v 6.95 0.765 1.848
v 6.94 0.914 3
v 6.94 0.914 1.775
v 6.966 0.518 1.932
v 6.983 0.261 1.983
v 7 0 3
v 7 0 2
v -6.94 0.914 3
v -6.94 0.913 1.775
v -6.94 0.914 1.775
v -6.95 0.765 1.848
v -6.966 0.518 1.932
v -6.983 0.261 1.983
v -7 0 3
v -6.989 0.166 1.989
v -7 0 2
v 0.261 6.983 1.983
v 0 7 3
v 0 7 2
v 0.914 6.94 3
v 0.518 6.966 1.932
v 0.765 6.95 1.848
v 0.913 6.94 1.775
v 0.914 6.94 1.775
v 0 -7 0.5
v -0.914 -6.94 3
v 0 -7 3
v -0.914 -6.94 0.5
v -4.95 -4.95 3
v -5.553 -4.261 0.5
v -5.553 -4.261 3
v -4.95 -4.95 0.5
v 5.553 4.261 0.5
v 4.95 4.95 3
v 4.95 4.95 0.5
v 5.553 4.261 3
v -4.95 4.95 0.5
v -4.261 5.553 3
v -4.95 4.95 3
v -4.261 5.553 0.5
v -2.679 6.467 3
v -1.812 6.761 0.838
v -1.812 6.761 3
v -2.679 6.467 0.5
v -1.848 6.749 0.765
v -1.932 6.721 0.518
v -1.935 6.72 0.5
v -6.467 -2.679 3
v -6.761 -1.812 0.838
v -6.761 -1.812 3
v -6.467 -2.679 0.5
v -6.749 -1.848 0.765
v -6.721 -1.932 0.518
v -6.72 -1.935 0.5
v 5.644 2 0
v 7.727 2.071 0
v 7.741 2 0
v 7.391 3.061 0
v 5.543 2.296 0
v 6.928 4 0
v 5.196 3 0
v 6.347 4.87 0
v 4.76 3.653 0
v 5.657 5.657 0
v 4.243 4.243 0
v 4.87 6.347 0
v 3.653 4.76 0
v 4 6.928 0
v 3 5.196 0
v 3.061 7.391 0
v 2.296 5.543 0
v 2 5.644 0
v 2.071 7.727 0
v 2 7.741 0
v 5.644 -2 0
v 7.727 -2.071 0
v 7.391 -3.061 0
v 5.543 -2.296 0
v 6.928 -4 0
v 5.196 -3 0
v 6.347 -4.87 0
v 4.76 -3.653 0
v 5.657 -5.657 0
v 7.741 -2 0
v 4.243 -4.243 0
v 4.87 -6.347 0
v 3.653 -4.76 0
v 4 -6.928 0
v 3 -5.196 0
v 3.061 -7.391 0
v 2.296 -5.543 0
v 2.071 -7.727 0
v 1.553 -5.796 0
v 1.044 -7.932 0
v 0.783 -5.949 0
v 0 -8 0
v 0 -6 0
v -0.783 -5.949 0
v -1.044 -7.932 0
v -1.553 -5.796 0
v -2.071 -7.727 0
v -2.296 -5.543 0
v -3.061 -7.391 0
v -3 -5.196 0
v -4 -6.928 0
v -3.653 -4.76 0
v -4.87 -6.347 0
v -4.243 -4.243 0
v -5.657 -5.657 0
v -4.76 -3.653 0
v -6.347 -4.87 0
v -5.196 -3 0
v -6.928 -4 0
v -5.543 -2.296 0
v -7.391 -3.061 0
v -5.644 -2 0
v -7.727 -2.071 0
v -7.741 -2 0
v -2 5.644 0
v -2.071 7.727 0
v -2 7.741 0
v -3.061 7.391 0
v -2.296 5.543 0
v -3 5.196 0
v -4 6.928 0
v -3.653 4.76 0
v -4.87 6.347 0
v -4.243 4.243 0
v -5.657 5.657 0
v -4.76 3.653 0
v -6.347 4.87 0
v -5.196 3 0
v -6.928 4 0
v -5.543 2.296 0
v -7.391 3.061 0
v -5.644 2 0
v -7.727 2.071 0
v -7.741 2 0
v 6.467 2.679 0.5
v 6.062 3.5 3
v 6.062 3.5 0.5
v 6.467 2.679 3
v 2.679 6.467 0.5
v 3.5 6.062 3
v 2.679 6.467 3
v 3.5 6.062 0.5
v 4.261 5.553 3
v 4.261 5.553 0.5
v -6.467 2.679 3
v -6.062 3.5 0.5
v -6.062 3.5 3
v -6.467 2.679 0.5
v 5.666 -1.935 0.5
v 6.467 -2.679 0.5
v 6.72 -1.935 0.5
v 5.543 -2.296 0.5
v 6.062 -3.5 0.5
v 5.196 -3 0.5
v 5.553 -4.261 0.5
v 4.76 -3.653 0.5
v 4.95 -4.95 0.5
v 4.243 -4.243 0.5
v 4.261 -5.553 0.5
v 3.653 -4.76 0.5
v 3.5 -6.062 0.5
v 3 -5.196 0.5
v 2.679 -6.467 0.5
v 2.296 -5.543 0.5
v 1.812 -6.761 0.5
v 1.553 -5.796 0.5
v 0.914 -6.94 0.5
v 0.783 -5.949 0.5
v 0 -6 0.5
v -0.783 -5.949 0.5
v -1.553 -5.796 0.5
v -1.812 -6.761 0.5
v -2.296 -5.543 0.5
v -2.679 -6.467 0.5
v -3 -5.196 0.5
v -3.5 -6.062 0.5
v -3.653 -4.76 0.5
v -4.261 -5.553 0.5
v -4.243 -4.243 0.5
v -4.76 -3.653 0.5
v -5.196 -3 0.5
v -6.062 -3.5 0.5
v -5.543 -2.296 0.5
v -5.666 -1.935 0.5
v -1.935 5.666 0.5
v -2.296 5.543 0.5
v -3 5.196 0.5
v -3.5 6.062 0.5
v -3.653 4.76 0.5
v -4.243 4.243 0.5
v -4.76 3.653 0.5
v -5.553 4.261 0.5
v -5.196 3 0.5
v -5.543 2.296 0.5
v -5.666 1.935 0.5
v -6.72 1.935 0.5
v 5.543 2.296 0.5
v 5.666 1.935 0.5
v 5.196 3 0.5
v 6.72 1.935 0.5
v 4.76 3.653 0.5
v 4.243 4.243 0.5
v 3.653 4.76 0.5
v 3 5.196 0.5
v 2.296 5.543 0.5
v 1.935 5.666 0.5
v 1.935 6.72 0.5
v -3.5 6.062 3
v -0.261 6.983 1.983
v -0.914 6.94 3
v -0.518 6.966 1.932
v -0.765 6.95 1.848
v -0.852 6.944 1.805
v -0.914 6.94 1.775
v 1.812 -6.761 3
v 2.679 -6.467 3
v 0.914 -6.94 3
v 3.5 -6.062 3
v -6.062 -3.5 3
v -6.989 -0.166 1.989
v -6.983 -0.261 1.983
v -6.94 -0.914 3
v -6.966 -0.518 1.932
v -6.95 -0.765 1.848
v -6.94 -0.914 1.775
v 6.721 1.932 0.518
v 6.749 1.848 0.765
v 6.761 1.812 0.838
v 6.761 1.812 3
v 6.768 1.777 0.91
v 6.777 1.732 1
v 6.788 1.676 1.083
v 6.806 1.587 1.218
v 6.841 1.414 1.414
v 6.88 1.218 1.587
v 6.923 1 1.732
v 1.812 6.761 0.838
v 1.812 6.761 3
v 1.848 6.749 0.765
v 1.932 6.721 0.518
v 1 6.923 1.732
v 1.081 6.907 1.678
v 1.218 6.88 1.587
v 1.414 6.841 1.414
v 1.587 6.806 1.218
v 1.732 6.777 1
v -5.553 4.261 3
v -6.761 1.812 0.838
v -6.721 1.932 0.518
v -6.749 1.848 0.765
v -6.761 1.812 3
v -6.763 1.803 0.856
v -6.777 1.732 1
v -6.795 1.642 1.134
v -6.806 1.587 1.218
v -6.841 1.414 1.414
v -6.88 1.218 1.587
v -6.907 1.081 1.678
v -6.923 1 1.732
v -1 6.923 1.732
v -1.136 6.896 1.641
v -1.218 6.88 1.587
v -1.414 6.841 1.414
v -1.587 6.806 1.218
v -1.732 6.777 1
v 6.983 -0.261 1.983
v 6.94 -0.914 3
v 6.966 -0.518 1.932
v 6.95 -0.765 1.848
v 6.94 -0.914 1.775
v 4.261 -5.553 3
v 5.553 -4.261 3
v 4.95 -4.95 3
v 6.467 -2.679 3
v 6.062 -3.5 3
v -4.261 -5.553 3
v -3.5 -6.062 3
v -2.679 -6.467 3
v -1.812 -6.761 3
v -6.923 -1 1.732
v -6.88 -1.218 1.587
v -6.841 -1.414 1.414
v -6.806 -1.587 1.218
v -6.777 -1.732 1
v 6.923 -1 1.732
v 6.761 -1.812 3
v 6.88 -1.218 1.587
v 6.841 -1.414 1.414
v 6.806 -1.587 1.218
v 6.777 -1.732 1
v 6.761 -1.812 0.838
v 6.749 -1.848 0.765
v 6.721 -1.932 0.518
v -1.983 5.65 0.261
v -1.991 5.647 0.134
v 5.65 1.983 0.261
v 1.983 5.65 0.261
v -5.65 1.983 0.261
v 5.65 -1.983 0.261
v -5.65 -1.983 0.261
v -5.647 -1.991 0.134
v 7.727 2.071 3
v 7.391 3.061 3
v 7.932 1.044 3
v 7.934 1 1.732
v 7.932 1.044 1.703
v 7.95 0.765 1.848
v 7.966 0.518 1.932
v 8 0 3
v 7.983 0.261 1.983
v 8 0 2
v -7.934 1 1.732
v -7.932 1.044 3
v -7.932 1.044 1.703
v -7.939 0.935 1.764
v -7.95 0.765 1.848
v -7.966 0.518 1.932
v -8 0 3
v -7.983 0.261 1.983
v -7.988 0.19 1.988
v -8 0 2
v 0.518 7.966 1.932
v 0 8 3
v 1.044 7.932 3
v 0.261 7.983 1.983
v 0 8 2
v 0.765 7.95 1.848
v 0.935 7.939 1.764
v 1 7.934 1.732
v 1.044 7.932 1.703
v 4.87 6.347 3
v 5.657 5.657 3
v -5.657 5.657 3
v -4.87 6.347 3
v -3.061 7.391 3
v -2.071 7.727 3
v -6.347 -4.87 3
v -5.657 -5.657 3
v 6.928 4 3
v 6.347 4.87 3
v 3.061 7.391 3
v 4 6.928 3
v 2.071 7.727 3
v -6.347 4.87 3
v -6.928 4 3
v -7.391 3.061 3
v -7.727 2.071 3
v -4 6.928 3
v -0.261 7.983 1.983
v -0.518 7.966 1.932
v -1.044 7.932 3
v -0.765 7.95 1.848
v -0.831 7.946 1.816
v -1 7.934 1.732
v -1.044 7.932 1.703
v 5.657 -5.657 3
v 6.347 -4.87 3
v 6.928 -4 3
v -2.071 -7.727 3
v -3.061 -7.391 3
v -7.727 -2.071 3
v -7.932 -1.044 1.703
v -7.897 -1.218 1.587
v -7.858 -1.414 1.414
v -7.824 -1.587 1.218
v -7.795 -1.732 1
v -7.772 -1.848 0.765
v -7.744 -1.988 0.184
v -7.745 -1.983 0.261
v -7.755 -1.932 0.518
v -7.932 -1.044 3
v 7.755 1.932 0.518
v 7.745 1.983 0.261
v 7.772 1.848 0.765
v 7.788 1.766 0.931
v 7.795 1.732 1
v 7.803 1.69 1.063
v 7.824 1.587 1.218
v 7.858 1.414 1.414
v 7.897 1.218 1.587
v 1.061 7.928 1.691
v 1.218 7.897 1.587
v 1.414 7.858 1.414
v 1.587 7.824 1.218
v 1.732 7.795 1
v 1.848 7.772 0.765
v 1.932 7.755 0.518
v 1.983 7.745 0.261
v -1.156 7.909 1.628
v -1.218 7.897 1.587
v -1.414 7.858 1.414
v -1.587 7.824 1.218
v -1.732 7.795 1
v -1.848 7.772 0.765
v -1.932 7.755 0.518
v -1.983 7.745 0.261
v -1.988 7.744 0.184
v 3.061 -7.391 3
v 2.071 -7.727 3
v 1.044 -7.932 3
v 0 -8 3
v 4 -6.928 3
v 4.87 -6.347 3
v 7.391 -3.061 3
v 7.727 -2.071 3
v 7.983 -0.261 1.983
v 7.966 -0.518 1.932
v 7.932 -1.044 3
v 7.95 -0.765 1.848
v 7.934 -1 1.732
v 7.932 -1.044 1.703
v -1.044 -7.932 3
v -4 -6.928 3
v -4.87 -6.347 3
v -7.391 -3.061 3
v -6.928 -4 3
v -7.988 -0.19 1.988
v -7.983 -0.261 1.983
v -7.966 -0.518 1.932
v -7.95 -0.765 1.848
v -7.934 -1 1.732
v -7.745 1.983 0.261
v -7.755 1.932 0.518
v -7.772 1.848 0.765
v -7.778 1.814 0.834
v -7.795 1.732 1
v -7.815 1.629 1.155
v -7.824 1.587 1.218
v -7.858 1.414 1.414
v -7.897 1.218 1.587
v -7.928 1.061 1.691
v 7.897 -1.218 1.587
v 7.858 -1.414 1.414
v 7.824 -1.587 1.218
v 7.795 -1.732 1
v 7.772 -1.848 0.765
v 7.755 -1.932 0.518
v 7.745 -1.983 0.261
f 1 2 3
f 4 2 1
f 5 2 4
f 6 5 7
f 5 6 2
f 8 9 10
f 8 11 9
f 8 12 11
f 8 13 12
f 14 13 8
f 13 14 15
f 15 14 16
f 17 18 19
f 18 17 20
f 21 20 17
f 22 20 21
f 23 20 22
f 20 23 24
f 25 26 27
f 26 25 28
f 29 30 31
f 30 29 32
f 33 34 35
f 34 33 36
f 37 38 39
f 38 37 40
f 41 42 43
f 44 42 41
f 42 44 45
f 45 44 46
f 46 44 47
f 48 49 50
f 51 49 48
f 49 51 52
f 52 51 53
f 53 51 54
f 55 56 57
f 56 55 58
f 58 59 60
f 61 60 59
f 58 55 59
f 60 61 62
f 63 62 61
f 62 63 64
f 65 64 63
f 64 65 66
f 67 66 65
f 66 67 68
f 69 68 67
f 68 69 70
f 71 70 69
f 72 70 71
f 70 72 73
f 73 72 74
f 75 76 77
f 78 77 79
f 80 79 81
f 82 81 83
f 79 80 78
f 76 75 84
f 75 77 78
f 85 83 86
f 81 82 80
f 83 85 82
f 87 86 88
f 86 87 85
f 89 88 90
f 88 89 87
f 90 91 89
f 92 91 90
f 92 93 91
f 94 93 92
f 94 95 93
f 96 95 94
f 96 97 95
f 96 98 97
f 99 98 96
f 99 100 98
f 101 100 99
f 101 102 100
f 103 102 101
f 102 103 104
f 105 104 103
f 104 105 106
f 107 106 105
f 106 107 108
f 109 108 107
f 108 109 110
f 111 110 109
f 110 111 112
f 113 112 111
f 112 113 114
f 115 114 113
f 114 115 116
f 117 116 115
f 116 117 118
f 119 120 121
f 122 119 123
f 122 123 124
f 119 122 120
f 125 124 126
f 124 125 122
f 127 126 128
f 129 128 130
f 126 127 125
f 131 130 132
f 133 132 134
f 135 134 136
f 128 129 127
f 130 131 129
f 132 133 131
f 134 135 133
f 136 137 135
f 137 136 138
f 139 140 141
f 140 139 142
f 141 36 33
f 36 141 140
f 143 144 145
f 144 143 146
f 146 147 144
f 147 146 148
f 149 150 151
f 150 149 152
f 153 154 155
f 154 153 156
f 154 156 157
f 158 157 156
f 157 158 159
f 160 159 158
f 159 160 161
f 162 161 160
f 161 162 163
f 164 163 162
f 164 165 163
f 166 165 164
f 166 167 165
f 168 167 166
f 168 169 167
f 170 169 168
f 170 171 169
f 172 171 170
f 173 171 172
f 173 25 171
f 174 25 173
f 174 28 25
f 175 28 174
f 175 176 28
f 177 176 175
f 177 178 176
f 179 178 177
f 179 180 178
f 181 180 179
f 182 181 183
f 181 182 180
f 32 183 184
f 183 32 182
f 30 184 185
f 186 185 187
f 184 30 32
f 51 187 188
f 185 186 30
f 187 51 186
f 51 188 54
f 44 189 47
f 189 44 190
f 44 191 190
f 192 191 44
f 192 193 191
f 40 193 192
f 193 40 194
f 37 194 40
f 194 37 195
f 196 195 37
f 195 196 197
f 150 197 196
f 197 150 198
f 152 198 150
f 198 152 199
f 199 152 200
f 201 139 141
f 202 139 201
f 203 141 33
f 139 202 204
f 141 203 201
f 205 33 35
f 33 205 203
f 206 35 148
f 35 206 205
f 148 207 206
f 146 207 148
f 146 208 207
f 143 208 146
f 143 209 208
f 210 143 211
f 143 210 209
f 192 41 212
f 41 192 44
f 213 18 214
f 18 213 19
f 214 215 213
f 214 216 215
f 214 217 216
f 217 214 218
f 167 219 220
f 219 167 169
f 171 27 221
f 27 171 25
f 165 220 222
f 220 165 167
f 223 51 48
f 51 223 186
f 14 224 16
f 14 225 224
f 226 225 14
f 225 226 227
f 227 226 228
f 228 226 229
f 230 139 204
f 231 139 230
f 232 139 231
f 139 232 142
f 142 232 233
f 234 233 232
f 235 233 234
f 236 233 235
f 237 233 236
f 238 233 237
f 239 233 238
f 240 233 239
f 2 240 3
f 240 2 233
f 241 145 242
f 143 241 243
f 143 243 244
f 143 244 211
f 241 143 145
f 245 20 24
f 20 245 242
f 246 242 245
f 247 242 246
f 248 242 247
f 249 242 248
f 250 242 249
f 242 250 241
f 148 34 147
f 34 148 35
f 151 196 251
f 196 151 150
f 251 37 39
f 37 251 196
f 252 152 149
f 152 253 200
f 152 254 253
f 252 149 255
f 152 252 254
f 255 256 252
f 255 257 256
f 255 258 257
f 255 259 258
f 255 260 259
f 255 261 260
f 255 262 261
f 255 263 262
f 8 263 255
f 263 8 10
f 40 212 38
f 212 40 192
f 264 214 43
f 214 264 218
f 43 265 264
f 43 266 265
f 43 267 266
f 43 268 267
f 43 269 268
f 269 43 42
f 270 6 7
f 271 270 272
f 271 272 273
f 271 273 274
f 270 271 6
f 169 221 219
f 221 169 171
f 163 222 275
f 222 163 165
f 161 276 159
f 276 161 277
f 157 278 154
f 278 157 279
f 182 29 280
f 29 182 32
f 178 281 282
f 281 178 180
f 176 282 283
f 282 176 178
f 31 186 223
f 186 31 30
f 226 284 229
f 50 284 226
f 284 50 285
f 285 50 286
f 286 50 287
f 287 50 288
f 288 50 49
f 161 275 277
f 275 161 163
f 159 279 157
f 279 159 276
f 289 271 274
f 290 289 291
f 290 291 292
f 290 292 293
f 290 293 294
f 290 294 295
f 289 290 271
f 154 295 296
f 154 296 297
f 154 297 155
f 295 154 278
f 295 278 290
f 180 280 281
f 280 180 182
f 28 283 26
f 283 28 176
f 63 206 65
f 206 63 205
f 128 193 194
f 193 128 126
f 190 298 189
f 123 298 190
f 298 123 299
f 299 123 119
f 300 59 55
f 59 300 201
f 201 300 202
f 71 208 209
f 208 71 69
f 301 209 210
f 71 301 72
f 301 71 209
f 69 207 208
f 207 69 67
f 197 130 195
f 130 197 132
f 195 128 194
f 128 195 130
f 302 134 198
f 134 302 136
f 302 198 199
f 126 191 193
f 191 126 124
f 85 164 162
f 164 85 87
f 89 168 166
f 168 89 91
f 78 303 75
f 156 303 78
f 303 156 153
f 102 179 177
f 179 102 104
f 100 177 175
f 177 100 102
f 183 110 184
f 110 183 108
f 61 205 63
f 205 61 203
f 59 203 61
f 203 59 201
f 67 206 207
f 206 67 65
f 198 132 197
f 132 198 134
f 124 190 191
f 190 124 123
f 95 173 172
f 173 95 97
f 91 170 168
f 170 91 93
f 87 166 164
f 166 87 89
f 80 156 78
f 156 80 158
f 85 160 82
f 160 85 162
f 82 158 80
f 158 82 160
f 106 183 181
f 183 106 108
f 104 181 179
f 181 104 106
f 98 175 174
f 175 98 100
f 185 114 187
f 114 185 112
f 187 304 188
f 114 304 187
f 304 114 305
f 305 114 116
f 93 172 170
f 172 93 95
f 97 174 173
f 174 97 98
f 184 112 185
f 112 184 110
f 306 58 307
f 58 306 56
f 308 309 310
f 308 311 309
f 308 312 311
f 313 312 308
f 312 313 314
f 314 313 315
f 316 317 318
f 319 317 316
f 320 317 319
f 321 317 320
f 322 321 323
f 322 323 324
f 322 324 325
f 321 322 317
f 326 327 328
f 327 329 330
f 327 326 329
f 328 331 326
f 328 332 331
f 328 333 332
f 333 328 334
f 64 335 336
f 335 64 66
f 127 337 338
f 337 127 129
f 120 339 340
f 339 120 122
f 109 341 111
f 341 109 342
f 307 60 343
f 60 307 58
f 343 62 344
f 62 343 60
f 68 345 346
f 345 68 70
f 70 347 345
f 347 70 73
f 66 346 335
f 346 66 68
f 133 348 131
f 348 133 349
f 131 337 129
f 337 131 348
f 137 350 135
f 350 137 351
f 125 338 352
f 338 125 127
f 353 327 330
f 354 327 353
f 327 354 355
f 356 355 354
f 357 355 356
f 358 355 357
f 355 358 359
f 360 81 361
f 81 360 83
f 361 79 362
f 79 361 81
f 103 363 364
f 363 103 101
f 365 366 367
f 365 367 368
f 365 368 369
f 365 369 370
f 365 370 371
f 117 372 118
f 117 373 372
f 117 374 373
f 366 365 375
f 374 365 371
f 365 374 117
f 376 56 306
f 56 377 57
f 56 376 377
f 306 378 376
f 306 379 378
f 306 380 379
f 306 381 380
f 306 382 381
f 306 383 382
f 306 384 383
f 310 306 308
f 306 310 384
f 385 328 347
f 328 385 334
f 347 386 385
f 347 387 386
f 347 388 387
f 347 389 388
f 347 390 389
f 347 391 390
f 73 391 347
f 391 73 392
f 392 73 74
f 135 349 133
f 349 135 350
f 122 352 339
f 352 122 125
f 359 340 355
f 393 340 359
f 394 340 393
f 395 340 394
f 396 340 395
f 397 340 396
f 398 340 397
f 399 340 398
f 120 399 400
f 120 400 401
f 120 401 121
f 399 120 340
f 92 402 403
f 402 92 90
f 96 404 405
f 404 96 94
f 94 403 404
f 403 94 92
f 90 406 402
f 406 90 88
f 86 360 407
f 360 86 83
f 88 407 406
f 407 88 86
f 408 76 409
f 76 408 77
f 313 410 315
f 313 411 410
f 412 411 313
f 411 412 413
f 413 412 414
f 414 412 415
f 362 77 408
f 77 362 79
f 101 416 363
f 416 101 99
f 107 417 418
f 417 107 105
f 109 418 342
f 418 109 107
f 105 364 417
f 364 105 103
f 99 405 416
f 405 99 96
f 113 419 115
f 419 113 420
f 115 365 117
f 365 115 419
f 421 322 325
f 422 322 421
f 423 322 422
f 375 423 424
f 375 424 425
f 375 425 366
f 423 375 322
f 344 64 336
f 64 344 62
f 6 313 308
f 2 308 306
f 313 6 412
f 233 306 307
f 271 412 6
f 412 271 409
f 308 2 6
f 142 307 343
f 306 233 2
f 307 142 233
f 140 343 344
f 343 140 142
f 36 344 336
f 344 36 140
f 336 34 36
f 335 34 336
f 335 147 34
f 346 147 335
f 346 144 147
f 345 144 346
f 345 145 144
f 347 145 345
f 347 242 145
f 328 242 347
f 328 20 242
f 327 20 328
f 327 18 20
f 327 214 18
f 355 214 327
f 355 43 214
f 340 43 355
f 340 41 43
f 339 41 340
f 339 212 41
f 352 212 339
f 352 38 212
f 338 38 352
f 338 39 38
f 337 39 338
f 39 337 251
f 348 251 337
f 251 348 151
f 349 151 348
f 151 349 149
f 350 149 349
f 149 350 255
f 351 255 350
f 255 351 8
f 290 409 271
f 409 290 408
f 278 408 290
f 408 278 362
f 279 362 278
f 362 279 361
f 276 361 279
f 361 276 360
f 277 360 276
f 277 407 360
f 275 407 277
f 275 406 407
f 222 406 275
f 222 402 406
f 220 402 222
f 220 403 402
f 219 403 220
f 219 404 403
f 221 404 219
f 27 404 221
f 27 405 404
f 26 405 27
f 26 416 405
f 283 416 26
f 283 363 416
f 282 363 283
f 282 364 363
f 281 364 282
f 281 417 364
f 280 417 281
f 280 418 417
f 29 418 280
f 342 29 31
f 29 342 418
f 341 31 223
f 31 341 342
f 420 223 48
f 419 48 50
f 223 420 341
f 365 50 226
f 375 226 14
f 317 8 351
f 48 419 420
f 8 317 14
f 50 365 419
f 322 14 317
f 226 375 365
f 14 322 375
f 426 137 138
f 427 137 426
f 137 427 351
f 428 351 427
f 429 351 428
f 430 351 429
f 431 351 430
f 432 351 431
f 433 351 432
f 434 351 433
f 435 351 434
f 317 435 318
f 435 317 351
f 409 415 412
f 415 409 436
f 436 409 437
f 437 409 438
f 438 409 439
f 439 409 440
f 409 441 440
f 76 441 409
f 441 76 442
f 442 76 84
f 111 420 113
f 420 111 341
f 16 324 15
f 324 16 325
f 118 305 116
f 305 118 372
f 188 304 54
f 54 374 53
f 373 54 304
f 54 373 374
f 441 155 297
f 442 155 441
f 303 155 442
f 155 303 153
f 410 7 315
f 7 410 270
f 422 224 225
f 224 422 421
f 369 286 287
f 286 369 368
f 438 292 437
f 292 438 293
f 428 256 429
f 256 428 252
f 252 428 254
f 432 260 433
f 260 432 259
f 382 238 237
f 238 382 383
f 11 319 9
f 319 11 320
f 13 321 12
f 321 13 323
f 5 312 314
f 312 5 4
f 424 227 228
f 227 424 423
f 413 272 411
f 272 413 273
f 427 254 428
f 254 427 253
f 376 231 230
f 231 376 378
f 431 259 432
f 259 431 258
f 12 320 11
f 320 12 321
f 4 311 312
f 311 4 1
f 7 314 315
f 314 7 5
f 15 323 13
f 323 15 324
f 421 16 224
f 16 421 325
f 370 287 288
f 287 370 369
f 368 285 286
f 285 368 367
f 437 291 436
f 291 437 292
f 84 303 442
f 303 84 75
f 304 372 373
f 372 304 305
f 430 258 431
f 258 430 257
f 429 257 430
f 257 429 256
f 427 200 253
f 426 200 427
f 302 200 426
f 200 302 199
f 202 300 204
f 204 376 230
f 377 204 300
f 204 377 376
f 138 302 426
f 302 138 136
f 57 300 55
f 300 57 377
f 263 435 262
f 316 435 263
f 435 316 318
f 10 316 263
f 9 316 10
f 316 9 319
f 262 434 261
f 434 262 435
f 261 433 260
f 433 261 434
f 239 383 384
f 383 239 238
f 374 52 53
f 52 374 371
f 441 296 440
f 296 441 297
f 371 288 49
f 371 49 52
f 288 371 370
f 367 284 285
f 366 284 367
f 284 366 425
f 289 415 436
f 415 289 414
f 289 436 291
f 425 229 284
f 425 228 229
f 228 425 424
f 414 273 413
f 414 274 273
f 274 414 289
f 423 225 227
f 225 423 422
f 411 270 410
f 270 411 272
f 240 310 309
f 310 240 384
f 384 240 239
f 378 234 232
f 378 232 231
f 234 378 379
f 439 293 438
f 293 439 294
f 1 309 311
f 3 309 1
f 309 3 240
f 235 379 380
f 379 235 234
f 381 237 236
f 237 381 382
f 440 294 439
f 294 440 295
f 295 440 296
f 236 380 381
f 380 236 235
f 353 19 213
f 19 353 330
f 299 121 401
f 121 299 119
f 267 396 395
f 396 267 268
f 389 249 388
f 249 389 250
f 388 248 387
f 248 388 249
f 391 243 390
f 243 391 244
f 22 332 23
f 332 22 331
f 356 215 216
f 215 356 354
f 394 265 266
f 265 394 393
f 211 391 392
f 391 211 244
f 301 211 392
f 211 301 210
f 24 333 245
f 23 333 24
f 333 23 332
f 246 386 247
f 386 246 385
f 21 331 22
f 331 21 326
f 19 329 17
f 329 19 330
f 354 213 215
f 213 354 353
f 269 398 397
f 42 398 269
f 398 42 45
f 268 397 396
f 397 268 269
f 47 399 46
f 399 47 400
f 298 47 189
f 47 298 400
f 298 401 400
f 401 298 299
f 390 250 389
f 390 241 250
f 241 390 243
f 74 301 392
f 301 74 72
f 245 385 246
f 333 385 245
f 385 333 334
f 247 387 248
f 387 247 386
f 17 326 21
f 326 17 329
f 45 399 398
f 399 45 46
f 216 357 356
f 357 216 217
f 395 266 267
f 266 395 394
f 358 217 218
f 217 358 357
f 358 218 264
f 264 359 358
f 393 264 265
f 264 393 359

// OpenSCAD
// file: ../build_environments.scad
// build_environments.scad: modules to build level sections
//

module pool(diameter=10.0, wall_height=2.0, step_width=3.0, connections=[])
{
    difference() {
        union() {
        difference() {
            cylinder(h=0.5,r1=diameter+step_width,r2=diameter+step_width,$fn=48);
            translate([0,0,-0.1])
                cylinder(h=0.7,r1=diameter,r2=diameter,$fn=48);
        }
        difference() {
            cylinder(h=wall_height,r1=diameter+step_width+1.0,r2=diameter+step_width+1.0,$fn=48);
            translate([0,0,-0.1])
                cylinder(h=wall_height+0.2,r1=diameter+step_width,r2=diameter+step_width,$fn=48);
        }
        }
    
        for (c = connections)
        {
            rotate([0,90,0]) {
                angle = atan2(c[1],c[0]);
                rotate([-angle,0,0]) {
                    cylinder(h=diameter+5.0,r1=c[2],r2=c[2],$fn=48);
                }
            }
        }
    }
}

module straight(length=10.0, width=2.0, dy1=0.0, dy2=0.0, dz=0.0)
{
    dims = [0, 0, 0, 0, 0, (dz/length)];
    matrix = [
        [ 1, dims[0], dims[1], 0 ],
        [ dims[2], 1, dims[4], 0 ],
        [ dims[5], dims[3], 1, 0 ],
        [ 0, 0, 0, 1 ]
    ];
    multmatrix(matrix)
    difference() {
        translate([dy1,0,0])
        union() {
            rotate([0,90,0]) {
                difference() {
                    cylinder(h=(length-dy1-dy2),r1=width+1.0,r2=width+1.0,$fn=24);
                    translate([0,0,-0.1])
                        cylinder(h=(length-dy1-dy2+0.2),r1=width,r2=width,$fn=24);
                }
                difference() {
                    cylinder(h=1.0,r1=width+2.0,r2=width+2.0,$fn=24);
                    translate([0,0,-0.1])
                        cylinder(h=1.2,r1=width,r2=width,$fn=24);
                }
                translate([0,0,(length-dy1-dy2)-1.0]) {
                    difference() {
                        cylinder(h=1.0,r1=width+2.0,r2=width+2.0,$fn=24);
                        translate([0,0,-0.1])
                            cylinder(h=1.2,r1=width,r2=width,$fn=24);
                    }
                }
            }
        }
        translate([0,0,-(2*width+4.0)/2])
            cube([3*length,3*length,2*width+4.0],center=true);
    }
}

module curve(p0=[0,0], center=[0,0], dir=1, angle=0.0, width=2.0)
{
    radius = sqrt((p0[0]-center[0])*(p0[0]-center[0]) + (p0[1]-center[1])*(p0[1]-center[1]));
    if (dir == 0) {
        difference() {
            rotate([0,0,-90])
            difference() {
                rotate_extrude(angle = angle, convexity = 10, $fn=32)
                    translate([radius, 0, 0])
                        circle(r = width+1.0,$fn=24);
                rotate([0,0,-1.0])
                    rotate_extrude(angle = angle+2.0, convexity = 10, $fn=32)
                        translate([radius, 0, 0])
                            circle(r = width,$fn=24);
            }
            translate([0,0,-(2*width+4.0)/2])
                cube([5*radius,5*radius,2*width+4.0],center=true);
        }
    }
    else {
        difference() {
            rotate([0,0,90])
            difference() {
                rotate_extrude(angle = -angle, convexity = 10, $fn=32)
                    translate([radius, 0, 0])
                        circle(r = width+1.0,$fn=24);
                rotate([0,0,1.0])
                    rotate_extrude(angle = -angle-2.0, convexity = 10, $fn=32)
                        translate([radius, 0, 0])
                            circle(r = width,$fn=24);
            }
            translate([0,0,-(2*width+4.0)/2])
                cube([5*radius,5*radius,2*width+4.0],center=true);
        }
    }

}

// test pool
//pool(diameter=12.0000, wall_height=3.0000, step_width=3.0000, connections=[[0.0000,-26.0000,2.0000], [23.6074,0.0000,2.0000]]);

// test straight, slope
//straight(length=26.0000, width=2.0000, dy1=11.8322, dy2=6.7082, dz=0.0000);
//straight(length=29.1549, width=12.0000, dy1=0.0000, dy2=0.0000, dz=-15.0000);

// test curve
//curve(p0=[23.6074, 0.0000], center=[23.6074, 5.0000], dir=0, angle=60.1011, width=2.0000);
//curve(p0=[33.6426, 12.4219], center=[37.9771, 9.9295], dir=1, angle=120.4627, width=2.0000);
// main file
use <../build_environments.scad>;
pool(diameter=6.0000, wall_height=3.0000, step_width=1.0000, connections=[[-17.0000,0.0000,2.0000], [16.0000,0.0000,2.0000], [0.0000,16.0000,2.0000]]);
